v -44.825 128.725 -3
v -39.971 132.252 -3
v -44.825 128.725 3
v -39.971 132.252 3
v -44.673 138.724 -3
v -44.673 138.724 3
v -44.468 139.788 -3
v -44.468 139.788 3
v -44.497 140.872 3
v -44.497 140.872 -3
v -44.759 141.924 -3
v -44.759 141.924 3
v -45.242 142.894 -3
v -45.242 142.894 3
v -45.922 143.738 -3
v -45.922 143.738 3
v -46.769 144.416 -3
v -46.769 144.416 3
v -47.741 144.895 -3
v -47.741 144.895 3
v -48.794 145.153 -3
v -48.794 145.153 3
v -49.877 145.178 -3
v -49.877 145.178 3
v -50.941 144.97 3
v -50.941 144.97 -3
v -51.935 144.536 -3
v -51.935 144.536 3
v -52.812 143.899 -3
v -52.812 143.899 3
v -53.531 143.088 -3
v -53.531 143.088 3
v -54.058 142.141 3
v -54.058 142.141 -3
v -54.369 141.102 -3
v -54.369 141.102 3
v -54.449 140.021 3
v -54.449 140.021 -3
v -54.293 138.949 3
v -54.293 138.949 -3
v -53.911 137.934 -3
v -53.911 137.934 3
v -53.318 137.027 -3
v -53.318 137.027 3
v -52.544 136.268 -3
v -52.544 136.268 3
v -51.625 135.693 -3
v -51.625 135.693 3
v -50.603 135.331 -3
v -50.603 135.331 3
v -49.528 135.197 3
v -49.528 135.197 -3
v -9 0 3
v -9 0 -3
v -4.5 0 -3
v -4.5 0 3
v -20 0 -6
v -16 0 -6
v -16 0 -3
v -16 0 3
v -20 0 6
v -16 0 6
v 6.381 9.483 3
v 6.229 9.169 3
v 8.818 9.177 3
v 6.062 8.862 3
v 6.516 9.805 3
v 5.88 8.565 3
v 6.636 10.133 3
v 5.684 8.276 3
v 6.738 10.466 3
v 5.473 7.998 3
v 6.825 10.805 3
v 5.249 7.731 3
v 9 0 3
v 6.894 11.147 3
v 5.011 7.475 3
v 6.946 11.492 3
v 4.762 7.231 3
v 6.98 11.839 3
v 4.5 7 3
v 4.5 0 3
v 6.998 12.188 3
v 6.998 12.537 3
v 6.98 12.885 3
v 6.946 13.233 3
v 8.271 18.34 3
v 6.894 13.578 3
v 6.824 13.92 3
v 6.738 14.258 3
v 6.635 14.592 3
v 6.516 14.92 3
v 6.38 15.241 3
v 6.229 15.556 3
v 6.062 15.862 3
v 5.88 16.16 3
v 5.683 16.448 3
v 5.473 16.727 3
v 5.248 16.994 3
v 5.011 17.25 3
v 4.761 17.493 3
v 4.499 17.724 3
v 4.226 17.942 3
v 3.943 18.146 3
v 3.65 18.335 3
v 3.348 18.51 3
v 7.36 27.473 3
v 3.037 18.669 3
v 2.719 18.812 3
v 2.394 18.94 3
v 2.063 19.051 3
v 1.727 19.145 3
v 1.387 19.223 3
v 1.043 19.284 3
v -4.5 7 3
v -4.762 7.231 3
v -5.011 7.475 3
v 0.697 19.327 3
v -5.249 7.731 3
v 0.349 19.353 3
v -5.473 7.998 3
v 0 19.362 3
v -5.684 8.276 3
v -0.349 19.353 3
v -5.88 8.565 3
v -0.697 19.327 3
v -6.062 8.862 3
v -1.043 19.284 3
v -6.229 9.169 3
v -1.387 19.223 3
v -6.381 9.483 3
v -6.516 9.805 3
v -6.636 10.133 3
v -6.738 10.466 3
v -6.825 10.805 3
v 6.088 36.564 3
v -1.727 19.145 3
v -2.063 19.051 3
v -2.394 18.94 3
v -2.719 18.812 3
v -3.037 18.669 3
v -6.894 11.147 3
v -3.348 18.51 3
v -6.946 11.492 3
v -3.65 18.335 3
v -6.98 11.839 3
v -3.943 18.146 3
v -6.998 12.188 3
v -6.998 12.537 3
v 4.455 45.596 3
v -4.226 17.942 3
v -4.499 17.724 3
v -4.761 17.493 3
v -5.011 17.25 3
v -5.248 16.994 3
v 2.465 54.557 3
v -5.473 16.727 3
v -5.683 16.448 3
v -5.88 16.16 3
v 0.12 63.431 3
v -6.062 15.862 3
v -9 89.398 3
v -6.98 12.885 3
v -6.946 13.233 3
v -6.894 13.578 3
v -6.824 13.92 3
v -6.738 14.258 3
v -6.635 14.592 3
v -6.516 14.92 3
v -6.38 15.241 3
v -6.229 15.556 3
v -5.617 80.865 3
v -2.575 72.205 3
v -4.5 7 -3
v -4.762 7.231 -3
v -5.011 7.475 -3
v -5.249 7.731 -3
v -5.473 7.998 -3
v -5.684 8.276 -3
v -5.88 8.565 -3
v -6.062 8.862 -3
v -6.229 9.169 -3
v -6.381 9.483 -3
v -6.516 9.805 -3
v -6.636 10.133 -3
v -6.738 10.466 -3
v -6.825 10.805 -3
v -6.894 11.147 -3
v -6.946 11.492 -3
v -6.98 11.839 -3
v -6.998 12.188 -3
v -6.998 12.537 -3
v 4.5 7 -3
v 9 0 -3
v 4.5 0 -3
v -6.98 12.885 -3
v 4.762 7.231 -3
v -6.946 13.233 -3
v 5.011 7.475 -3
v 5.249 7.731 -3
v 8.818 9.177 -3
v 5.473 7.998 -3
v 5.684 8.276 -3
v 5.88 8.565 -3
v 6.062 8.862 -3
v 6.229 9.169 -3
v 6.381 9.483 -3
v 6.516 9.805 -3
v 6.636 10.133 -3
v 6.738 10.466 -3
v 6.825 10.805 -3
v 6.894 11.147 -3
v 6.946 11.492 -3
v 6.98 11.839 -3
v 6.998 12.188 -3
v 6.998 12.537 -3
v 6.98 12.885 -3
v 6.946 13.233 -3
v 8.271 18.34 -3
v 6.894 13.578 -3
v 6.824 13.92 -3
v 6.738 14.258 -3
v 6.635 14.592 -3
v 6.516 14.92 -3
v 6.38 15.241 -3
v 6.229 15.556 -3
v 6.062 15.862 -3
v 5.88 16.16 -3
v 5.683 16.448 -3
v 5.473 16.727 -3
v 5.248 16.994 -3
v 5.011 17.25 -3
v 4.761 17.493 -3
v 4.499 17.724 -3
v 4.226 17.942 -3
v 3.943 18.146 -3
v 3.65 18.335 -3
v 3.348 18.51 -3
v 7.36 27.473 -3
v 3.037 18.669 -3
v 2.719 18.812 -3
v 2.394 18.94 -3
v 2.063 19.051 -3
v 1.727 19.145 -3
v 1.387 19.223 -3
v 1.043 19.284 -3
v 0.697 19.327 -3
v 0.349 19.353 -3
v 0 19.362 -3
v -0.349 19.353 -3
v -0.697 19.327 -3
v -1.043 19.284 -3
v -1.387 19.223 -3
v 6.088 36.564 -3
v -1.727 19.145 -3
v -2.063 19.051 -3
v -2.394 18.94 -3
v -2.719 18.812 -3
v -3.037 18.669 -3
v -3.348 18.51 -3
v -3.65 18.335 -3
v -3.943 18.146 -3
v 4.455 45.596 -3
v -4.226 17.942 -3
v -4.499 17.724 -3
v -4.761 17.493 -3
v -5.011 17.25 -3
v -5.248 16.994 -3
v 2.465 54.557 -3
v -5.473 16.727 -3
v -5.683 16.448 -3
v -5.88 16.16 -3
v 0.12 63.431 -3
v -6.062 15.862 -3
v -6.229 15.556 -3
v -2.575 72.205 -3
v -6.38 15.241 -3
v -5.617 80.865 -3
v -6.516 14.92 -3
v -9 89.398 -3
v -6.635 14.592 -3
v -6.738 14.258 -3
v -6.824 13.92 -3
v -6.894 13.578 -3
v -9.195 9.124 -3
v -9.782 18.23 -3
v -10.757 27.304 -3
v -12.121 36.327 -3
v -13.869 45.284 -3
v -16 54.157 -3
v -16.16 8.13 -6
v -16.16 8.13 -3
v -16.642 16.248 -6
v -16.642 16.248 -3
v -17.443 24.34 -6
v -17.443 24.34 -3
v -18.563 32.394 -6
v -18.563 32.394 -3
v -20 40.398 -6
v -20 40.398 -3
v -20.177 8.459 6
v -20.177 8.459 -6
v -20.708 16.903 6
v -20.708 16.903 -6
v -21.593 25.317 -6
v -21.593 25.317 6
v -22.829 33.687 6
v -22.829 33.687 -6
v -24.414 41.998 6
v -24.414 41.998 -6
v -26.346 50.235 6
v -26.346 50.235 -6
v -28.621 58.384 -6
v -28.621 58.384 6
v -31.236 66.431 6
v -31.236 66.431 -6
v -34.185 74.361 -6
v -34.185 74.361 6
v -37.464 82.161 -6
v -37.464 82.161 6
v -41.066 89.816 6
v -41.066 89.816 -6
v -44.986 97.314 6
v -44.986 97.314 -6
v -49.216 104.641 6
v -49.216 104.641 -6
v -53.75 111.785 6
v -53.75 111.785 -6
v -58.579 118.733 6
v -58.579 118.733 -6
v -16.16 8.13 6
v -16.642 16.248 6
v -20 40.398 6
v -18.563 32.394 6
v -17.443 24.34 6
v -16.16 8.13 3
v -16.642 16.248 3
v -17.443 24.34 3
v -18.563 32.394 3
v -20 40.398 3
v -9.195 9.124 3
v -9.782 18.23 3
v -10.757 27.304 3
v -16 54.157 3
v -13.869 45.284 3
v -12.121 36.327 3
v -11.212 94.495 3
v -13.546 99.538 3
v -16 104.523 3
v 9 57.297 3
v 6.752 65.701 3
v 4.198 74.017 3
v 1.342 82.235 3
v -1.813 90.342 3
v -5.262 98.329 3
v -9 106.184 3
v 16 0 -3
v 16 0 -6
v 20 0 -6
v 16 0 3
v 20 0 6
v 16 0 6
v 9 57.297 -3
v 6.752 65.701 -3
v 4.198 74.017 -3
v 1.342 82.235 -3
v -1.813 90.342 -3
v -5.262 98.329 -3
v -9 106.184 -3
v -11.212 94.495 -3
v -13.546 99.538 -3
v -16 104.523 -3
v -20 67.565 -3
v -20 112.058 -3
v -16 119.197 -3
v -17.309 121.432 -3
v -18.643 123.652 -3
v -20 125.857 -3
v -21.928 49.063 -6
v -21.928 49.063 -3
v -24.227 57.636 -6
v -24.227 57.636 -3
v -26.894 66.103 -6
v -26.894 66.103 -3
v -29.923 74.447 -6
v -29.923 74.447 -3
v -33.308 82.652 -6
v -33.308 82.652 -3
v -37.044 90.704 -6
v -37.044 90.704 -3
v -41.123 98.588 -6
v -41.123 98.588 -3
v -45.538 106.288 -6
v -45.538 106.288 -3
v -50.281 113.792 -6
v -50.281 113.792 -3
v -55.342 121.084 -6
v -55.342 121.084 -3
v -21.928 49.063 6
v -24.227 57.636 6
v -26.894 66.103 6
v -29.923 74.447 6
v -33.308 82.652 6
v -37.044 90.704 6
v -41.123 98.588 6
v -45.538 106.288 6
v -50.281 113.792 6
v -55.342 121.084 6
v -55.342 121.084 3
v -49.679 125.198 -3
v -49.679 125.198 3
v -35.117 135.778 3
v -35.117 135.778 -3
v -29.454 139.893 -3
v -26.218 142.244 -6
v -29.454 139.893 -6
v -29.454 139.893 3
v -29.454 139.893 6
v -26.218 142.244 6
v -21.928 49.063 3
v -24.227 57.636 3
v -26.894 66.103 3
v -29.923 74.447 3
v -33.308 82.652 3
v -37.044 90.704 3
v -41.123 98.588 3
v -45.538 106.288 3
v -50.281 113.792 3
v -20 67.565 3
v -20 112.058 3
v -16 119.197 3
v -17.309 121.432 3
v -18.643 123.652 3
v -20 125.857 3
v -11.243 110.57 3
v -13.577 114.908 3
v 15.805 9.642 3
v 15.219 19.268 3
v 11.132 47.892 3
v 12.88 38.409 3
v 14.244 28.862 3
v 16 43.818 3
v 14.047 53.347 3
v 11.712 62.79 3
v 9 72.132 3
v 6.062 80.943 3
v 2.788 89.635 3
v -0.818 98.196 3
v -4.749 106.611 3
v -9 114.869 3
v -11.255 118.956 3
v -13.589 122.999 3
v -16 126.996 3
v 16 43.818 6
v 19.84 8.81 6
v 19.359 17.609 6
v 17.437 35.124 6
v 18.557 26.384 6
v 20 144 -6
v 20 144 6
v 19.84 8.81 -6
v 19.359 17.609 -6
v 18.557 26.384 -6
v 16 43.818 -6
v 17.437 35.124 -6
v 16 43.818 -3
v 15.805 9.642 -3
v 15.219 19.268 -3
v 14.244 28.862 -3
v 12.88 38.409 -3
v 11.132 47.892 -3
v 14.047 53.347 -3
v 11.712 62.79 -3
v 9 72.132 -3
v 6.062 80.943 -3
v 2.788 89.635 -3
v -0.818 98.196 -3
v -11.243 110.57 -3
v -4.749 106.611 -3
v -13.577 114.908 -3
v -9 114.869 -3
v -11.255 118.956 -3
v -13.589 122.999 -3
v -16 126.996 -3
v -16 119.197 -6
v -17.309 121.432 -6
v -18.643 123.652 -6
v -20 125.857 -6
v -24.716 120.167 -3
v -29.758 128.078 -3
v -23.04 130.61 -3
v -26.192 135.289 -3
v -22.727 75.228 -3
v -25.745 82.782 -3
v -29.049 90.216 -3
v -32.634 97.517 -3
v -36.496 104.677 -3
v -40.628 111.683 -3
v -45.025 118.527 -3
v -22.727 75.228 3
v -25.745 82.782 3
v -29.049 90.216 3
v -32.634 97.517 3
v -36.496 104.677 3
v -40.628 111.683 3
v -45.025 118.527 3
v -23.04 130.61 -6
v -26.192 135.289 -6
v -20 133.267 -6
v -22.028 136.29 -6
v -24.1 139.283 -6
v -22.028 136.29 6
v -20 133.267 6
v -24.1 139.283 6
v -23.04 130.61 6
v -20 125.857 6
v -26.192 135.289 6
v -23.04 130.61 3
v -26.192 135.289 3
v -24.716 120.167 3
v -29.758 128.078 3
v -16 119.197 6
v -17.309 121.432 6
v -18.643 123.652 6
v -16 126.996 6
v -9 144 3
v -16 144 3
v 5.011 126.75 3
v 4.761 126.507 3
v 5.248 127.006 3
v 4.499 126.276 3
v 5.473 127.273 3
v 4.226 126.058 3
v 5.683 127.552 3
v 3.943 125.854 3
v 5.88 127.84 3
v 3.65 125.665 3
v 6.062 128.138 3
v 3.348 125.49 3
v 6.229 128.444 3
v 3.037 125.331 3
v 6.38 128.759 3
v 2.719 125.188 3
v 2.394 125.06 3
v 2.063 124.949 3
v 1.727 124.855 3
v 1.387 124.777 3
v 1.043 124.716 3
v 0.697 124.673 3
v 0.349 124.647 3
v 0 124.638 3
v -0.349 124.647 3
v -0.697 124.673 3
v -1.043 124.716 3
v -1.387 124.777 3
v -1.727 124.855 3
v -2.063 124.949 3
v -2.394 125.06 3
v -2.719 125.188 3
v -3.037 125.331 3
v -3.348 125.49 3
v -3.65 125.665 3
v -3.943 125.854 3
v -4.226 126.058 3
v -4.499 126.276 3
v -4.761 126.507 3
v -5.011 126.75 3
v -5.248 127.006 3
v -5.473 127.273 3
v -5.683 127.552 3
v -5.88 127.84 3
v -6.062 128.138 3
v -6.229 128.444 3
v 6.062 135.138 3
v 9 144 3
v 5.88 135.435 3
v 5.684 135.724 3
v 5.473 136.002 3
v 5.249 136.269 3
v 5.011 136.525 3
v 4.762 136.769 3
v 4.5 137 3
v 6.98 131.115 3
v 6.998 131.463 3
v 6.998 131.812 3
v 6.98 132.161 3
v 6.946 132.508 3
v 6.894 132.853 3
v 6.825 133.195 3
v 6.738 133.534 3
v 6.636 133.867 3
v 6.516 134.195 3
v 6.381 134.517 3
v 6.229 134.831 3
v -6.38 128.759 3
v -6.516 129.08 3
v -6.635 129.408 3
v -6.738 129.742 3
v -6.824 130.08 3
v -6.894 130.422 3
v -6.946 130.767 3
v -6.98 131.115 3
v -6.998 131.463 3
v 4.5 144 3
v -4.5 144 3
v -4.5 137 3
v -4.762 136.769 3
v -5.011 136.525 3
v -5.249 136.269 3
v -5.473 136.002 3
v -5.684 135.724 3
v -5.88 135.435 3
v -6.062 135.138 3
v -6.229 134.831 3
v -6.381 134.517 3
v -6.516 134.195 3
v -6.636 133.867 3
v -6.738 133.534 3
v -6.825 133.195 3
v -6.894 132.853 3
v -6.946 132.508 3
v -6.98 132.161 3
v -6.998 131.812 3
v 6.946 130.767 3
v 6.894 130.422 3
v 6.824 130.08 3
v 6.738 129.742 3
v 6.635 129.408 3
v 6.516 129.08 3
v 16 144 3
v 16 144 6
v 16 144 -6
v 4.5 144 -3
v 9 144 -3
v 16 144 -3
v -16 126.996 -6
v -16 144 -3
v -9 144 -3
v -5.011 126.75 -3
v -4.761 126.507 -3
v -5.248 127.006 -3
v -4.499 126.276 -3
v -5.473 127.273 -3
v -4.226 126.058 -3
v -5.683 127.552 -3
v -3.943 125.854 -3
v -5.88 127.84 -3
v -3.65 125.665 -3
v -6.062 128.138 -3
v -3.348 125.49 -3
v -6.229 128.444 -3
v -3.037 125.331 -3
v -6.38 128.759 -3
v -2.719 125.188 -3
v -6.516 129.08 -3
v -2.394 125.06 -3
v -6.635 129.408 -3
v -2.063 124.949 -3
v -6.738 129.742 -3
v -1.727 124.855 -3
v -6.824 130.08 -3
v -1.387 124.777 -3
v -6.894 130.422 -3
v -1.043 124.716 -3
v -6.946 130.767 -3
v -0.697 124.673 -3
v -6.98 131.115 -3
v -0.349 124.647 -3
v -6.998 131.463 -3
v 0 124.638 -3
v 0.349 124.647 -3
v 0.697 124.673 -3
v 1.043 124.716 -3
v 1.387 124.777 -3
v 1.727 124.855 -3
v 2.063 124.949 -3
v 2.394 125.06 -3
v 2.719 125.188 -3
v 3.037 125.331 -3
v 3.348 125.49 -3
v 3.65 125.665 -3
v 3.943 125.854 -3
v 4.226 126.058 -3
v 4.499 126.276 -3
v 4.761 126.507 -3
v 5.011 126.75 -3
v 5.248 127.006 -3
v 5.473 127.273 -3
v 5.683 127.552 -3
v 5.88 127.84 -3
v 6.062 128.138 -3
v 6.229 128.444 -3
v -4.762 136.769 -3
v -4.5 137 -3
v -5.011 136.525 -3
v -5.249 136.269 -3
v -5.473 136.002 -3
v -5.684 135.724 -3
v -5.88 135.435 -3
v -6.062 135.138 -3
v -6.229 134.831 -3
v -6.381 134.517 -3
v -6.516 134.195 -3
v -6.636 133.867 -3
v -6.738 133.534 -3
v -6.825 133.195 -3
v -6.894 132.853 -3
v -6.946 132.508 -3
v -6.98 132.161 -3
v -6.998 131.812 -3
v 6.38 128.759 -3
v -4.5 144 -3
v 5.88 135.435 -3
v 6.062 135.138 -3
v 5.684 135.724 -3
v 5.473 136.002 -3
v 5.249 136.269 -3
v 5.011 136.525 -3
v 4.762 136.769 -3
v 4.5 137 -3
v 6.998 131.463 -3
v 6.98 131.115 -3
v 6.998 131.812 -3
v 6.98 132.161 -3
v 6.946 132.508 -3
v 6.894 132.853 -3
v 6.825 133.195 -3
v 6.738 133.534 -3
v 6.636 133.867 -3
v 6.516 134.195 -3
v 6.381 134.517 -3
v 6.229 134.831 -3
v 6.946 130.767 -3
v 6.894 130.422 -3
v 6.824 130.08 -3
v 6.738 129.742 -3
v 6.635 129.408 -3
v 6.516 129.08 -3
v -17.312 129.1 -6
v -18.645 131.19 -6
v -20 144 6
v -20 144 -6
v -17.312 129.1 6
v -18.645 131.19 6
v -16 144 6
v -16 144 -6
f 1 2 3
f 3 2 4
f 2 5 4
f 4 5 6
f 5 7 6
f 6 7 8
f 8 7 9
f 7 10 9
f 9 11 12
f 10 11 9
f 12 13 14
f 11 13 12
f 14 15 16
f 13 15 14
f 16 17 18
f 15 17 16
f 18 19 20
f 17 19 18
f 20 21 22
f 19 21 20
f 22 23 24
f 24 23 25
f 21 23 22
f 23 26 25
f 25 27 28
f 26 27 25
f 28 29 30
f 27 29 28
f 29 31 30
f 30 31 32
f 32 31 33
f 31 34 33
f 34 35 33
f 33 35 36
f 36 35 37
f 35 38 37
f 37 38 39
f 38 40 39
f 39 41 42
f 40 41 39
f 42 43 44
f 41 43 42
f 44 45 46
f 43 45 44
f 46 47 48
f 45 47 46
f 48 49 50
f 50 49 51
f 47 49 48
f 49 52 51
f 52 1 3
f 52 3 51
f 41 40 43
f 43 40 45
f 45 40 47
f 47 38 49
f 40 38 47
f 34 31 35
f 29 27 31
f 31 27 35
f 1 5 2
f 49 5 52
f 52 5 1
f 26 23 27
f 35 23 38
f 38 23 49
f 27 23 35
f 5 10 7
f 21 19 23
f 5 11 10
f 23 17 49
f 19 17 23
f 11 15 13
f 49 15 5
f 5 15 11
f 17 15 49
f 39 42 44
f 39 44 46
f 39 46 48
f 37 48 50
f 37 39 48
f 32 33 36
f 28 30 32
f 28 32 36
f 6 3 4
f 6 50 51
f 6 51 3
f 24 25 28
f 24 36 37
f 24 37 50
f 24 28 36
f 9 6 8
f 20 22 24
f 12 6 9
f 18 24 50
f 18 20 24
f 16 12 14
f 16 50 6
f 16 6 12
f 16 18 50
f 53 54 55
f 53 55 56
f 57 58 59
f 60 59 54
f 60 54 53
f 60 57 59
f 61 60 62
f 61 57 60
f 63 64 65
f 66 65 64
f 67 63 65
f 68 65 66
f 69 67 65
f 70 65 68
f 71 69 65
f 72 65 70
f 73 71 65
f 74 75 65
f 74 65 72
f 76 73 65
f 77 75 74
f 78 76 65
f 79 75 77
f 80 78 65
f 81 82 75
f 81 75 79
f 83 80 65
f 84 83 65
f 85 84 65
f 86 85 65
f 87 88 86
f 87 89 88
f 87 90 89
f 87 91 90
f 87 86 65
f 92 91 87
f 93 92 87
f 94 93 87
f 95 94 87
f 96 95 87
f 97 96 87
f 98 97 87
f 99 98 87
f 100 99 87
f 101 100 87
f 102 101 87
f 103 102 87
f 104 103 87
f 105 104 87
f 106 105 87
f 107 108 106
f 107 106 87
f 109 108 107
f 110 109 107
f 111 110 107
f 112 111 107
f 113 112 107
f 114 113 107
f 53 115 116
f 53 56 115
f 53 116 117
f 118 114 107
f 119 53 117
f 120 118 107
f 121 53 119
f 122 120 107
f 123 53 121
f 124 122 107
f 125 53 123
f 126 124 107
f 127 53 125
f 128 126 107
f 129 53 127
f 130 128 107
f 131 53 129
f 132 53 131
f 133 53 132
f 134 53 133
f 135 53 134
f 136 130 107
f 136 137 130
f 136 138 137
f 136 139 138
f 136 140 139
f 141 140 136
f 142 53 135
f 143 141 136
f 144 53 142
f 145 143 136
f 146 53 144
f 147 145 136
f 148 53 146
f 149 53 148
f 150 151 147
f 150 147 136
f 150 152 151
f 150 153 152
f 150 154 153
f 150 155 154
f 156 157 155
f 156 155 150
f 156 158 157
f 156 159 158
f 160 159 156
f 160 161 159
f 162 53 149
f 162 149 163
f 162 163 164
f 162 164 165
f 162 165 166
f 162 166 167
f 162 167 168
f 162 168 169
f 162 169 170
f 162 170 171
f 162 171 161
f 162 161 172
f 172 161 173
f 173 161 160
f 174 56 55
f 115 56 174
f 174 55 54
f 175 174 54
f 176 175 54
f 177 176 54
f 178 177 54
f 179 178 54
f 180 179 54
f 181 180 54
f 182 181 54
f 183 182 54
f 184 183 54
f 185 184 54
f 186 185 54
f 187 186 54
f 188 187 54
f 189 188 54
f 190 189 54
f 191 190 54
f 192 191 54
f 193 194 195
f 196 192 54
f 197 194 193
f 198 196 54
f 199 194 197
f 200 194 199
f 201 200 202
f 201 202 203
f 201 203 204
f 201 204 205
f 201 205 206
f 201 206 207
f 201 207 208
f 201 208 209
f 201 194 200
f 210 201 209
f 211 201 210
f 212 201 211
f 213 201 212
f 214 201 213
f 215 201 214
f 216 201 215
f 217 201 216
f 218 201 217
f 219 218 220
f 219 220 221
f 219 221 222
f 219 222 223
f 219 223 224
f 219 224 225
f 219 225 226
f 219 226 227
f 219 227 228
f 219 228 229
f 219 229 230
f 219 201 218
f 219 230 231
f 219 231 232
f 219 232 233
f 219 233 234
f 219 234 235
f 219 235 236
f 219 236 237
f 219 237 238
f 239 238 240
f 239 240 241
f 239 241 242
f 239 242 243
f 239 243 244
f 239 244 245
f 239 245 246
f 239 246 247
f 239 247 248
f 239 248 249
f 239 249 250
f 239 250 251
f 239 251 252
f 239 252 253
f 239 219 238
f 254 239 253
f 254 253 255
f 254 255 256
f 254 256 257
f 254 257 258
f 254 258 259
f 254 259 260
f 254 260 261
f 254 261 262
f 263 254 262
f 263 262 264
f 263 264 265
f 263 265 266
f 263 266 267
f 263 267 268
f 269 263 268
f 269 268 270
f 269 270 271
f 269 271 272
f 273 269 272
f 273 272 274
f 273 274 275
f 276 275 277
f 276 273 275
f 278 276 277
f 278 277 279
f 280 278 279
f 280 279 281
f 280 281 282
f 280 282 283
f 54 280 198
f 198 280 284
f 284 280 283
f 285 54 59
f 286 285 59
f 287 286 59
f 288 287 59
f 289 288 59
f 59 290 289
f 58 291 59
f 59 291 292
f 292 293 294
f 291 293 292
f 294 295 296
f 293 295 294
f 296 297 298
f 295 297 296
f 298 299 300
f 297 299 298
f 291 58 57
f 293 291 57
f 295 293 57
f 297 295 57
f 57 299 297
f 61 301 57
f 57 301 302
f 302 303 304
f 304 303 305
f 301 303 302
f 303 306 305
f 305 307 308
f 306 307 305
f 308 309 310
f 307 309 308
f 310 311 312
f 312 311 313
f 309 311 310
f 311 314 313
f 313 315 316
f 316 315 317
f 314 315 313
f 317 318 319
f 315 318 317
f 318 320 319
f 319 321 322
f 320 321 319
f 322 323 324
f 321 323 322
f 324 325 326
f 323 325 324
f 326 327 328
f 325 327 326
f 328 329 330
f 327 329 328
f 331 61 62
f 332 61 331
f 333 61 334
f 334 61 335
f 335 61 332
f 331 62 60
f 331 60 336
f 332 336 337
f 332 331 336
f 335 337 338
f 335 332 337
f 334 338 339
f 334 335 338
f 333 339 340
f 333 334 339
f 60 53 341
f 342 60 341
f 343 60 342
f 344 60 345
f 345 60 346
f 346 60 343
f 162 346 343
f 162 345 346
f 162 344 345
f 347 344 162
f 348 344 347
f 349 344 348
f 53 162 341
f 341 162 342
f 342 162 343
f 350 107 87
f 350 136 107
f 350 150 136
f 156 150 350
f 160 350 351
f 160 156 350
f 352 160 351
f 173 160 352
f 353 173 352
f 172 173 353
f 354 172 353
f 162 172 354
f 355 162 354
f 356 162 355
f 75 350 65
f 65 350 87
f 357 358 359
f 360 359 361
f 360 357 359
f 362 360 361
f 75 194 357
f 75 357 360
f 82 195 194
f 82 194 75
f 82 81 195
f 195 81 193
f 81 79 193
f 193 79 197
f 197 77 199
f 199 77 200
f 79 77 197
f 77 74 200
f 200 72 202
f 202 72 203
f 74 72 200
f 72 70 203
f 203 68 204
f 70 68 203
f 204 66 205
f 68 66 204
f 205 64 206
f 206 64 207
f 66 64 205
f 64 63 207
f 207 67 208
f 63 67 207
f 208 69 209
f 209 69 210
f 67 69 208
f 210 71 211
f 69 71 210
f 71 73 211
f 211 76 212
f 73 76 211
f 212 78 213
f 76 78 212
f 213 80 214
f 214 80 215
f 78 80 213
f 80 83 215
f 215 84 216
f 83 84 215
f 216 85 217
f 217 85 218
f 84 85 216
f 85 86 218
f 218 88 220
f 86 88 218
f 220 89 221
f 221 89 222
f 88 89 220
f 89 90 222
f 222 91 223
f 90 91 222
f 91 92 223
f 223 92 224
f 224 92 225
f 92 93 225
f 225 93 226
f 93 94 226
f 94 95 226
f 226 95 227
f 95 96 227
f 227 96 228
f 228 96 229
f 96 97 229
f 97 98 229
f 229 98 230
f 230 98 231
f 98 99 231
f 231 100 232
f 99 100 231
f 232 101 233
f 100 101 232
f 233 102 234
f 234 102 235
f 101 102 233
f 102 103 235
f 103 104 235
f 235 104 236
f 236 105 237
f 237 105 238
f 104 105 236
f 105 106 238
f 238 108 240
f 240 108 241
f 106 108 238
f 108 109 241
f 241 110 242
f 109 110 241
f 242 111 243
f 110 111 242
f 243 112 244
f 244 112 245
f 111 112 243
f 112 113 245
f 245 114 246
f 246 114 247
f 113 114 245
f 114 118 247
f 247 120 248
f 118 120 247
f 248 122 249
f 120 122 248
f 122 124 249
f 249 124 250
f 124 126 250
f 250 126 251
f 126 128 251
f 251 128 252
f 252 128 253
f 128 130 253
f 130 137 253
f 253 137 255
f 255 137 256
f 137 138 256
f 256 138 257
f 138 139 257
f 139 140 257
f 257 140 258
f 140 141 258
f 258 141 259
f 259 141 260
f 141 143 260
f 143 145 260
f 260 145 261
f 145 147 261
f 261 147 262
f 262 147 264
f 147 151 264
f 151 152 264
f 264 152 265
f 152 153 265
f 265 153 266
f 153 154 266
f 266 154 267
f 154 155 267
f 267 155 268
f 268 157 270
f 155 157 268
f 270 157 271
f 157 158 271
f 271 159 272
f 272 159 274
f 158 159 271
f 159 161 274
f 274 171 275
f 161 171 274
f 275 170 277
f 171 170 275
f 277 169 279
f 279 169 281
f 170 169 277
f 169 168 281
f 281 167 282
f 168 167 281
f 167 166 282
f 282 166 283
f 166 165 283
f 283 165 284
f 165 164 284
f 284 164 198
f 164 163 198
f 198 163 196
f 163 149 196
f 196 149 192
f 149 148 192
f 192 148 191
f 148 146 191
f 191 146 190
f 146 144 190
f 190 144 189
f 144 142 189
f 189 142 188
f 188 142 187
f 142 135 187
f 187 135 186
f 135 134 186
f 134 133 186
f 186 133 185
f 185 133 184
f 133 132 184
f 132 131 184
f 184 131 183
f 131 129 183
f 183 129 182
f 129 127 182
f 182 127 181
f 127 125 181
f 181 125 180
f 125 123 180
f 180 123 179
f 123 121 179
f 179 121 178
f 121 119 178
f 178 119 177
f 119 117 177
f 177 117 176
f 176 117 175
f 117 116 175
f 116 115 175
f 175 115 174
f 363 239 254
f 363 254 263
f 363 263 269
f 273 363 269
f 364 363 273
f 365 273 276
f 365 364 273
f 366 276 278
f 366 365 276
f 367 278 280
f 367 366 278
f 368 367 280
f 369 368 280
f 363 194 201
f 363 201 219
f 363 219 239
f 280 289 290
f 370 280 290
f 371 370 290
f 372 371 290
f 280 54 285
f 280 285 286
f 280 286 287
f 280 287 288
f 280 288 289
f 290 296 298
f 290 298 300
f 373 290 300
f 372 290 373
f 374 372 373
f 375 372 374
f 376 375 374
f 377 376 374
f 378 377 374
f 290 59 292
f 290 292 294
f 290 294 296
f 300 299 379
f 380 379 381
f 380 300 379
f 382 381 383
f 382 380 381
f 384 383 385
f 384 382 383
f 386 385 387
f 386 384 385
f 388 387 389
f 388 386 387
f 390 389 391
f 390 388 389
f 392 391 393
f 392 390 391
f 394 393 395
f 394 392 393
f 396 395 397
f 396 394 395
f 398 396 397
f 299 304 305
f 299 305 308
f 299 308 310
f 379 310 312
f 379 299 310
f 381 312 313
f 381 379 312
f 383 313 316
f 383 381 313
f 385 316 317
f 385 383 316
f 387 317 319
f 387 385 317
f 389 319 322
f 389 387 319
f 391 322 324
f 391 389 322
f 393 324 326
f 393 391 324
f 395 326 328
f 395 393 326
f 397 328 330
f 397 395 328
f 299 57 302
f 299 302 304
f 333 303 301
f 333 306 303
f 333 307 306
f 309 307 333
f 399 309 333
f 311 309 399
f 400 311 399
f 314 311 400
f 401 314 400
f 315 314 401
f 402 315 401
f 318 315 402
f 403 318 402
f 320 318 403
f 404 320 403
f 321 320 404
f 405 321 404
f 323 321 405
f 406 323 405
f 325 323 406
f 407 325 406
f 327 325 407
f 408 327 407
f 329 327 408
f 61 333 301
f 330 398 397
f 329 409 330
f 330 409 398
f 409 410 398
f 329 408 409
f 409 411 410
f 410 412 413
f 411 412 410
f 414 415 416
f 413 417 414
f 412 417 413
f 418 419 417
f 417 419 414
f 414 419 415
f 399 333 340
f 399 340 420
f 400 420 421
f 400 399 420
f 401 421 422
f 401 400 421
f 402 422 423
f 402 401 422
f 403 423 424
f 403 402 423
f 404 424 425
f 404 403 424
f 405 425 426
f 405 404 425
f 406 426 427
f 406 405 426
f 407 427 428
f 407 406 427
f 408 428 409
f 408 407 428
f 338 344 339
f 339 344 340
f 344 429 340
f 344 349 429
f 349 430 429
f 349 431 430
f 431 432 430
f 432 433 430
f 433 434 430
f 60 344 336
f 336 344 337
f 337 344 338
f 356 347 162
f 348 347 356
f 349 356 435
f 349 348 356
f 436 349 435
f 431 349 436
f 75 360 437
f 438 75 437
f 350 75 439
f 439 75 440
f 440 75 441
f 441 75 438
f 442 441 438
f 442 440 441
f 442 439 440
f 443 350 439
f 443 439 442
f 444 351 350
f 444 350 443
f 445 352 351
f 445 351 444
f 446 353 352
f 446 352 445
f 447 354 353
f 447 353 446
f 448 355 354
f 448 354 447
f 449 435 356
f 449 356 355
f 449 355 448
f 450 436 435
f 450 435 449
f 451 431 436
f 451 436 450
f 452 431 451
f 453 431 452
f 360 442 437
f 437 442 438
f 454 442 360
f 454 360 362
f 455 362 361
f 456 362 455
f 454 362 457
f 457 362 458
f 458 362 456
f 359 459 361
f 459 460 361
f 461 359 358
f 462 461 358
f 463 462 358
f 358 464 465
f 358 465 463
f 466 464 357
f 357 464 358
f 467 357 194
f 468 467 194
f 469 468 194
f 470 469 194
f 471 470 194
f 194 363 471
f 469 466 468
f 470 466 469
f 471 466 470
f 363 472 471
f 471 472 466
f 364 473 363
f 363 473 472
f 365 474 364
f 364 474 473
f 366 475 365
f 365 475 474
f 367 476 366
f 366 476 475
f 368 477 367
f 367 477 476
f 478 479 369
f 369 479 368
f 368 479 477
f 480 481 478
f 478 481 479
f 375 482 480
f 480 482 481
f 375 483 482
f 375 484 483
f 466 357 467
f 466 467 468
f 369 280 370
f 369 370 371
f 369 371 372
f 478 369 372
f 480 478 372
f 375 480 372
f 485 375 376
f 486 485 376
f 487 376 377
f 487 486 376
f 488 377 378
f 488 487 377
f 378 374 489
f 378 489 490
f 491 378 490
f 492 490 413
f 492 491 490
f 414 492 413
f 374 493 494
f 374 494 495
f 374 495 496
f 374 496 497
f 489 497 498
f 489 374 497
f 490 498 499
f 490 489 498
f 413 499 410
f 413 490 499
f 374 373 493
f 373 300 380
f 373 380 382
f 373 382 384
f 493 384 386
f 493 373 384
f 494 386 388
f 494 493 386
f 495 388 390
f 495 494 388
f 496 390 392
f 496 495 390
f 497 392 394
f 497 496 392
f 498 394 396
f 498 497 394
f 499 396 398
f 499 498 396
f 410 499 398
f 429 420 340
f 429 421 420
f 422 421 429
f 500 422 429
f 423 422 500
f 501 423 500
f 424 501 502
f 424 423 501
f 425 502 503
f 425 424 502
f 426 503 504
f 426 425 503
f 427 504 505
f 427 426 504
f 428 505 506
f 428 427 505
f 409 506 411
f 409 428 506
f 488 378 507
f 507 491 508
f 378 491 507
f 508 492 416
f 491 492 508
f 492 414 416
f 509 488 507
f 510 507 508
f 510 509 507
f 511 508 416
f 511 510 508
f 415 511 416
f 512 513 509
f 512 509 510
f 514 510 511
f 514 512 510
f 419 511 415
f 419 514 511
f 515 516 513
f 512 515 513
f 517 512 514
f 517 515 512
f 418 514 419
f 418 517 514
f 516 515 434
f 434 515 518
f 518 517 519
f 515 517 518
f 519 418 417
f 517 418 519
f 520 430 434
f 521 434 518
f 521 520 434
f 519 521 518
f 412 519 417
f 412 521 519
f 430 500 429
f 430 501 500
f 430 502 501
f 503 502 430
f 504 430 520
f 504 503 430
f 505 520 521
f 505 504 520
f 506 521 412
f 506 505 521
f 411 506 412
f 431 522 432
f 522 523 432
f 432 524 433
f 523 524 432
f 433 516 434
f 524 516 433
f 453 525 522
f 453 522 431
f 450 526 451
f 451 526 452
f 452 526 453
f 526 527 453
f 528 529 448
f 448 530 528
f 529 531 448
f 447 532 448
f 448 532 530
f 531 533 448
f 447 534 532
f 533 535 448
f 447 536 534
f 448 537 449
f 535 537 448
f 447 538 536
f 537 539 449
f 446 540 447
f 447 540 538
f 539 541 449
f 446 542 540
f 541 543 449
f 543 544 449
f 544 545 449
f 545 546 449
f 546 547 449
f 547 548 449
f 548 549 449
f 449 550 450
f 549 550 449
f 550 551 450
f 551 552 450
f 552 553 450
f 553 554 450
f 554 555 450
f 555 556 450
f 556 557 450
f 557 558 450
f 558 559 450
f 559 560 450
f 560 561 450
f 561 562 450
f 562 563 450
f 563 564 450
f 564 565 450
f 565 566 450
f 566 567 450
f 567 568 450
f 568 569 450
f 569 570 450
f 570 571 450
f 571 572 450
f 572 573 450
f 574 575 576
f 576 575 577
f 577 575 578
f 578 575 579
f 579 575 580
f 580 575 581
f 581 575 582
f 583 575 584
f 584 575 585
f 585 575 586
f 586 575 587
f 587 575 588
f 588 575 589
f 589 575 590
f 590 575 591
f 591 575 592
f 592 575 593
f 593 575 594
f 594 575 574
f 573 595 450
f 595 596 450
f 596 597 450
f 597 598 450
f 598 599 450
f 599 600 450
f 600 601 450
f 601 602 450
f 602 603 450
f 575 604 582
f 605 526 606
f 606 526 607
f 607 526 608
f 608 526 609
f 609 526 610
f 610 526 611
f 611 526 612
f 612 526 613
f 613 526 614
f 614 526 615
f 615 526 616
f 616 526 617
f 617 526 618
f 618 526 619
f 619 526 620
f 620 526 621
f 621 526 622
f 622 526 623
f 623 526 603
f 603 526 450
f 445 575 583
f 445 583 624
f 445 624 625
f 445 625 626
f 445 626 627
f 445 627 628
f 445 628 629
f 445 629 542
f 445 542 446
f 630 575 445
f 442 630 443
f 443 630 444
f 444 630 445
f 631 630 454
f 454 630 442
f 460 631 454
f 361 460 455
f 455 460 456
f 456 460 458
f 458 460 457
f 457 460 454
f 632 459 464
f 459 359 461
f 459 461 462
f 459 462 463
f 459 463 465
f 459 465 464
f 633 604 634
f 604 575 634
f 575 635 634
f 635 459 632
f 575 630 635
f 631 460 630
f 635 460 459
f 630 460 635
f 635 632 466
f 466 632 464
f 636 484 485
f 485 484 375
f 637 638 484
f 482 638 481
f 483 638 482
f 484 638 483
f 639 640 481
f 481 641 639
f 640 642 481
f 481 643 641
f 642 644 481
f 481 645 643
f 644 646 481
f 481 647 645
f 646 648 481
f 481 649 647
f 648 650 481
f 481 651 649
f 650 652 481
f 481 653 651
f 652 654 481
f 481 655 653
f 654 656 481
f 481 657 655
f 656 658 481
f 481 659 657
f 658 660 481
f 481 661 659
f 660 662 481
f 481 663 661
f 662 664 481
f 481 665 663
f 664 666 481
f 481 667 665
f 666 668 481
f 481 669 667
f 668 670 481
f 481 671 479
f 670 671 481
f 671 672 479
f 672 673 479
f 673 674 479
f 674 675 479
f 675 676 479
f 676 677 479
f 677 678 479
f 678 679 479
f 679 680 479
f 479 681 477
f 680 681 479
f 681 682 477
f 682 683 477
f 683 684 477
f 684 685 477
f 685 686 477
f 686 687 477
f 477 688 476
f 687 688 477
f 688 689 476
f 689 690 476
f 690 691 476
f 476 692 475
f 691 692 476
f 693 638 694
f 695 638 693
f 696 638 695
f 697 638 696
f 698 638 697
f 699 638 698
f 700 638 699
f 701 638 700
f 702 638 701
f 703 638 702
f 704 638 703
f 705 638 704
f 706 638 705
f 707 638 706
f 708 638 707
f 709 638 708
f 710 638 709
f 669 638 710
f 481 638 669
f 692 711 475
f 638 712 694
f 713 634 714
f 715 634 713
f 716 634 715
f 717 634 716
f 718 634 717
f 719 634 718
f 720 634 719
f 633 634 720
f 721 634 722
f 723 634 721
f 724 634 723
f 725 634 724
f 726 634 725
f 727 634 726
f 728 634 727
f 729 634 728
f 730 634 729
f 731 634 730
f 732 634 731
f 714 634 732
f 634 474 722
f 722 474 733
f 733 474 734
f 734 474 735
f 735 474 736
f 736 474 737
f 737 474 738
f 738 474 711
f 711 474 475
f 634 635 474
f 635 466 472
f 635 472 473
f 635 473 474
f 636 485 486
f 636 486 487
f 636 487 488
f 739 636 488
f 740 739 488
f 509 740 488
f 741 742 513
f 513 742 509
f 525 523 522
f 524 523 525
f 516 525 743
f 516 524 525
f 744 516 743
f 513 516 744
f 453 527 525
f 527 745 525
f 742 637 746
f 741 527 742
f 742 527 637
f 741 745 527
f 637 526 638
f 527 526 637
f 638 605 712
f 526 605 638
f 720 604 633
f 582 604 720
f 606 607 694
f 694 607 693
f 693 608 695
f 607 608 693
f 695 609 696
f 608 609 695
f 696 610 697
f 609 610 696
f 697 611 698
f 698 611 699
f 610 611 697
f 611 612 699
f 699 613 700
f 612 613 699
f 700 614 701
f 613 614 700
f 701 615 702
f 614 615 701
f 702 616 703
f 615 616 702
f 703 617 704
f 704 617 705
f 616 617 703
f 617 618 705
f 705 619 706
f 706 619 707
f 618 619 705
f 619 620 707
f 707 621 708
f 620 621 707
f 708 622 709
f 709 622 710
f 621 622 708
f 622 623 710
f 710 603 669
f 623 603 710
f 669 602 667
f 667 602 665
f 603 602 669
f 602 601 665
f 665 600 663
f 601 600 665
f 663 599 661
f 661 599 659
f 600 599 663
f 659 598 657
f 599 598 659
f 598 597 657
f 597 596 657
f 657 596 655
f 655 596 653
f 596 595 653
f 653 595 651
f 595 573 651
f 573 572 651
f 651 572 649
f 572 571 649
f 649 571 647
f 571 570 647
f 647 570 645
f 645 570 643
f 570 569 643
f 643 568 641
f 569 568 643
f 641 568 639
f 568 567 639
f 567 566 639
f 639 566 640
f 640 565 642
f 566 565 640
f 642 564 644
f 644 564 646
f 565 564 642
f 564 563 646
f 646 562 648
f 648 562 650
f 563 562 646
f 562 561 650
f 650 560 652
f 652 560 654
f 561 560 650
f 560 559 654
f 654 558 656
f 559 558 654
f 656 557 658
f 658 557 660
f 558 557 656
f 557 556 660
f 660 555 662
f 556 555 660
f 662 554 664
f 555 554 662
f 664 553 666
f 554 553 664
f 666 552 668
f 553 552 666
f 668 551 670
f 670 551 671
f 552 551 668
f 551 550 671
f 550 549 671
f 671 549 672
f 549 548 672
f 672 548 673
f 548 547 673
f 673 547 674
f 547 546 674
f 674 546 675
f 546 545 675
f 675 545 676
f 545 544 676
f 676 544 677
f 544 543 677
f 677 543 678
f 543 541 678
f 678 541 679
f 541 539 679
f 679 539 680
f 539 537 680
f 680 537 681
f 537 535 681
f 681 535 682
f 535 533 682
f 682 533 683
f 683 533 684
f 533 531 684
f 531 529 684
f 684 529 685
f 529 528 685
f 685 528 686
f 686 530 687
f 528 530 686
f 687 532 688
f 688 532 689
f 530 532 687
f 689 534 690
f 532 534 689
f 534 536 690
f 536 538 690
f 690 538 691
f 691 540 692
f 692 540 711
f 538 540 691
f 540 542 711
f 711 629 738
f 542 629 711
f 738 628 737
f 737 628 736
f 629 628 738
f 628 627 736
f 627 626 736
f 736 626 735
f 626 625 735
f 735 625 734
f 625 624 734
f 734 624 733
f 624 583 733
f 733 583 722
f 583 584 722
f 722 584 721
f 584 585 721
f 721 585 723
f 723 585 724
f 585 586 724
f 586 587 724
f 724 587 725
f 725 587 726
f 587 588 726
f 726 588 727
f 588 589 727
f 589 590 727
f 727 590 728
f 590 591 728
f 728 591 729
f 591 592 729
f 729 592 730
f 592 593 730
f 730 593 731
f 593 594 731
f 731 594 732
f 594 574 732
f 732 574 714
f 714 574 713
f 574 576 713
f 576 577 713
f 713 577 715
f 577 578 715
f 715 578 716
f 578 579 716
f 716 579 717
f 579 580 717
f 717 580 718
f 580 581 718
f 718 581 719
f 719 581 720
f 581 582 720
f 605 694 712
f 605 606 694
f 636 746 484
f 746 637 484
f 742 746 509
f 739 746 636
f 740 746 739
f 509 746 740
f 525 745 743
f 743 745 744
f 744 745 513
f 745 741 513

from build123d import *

# Parameters (mm, degrees)
SKETCH013_W          = 32
SKETCH013_H          = 3
POCKET_DEPTH         = 6.001
POCKET_DEPTH_BACK    = -6.001
POCKET001_DEPTH      = 6.001
POCKET001_DEPTH_BACK = -6.001
PAD002_DEPTH         = 3


with BuildPart() as body:
    # AdditivePipe: sweep along a path in Sketch002
    with BuildLine(Plane.XY) as additivepipe_path:
        ThreePointArc((0, 0), (-10.865453, 68.601773), (-42.398227, 130.488326))
    # Sketch → AdditivePipe (sweep)
    with BuildSketch(Plane.XZ):
        Polygon((-20, 6), (-20, -6), (-16, -6), (-16, -3), (-9, -3), (9, -3), (16, -3), (16, -6), (20, -6), (20, 6), (16, 6), (16, 3), (9, 3), (-9, 3), (-16, 3), (-16, 6), align=None)
    sweep(path=additivepipe_path.line)

    # AdditivePipe001: sweep along a path in Sketch001
    with BuildLine(Plane.XY) as additivepipe001_path:
        Line((0, 0), (0, 144))
    # Sketch → AdditivePipe001 (sweep)
    with BuildSketch(Plane.XZ):
        Polygon((-20, 6), (-20, -6), (-16, -6), (-16, -3), (-9, -3), (9, -3), (16, -3), (16, -6), (20, -6), (20, 6), (16, 6), (16, 3), (9, 3), (-9, 3), (-16, 3), (-16, 6), align=None)
    sweep(path=additivepipe001_path.line)

    # SubtractivePipe: sweep along a path in Sketch002
    with BuildLine(Plane.XY) as subtractivepipe_path:
        ThreePointArc((0, 0), (-10.865453, 68.601773), (-42.398227, 130.488326))
    # Sketch013 (on Face1 of AdditivePipe001) → SubtractivePipe (sweep, cut)
    with BuildSketch(Plane.XZ):
        with Locations((0, 4.5)):
            Rectangle(SKETCH013_W, SKETCH013_H)
    subtractivepipe = sweep(path=subtractivepipe_path.line, mode=Mode.SUBTRACT)

    # SubtractivePipe001: sweep along a path in Sketch001
    with BuildLine(Plane.XY) as subtractivepipe001_path:
        Line((0, 0), (0, 144))
    # Sketch013 (on Face1 of AdditivePipe001) → SubtractivePipe001 (sweep, cut)
    with BuildSketch(Plane.XZ):
        with Locations((0, 4.5)):
            Rectangle(SKETCH013_W, SKETCH013_H)
    subtractivepipe001 = sweep(path=subtractivepipe001_path.line, mode=Mode.SUBTRACT)

    # Mirrored: SubtractivePipe across XY
    add(subtractivepipe.mirror(Plane.XY), mode=Mode.SUBTRACT)

    # Mirrored001: SubtractivePipe001 across XY
    add(subtractivepipe001.mirror(Plane.XY), mode=Mode.SUBTRACT)

    # Sketch014 → Pocket (cut, two sides)
    with BuildSketch(Plane.XY) as pocket_sk:
        with BuildLine():
            Line((-4.5, 0), (4.5, 0))
            Line((4.5, 0), (4.5, 7))
            ThreePointArc((4.5, 7), (0, 19.361903), (-4.5, 7))
            Line((-4.5, 0), (-4.5, 7))
        make_face()
    extrude(amount=-POCKET_DEPTH, mode=Mode.SUBTRACT)
    extrude(pocket_sk.sketch, amount=-POCKET_DEPTH_BACK, mode=Mode.SUBTRACT)

    # Sketch016 → Pocket001 (cut, two sides)
    with BuildSketch(Plane.XY) as pocket001_sk:
        with BuildLine():
            Line((-4.5, 144), (4.5, 144))
            Line((4.5, 144), (4.5, 137))
            ThreePointArc((-4.5, 137), (0, 124.638097), (4.5, 137))
            Line((-4.5, 144), (-4.5, 137))
        make_face()
    extrude(amount=-POCKET001_DEPTH, mode=Mode.SUBTRACT)
    extrude(pocket001_sk.sketch, amount=-POCKET001_DEPTH_BACK, mode=Mode.SUBTRACT)


with BuildPart() as body003:
    # Sketch012 → Pad002 (new body, symmetric)
    with BuildSketch(Plane.XY):
        with BuildLine():
            Line((-44.825278, 128.72497), (-39.971176, 132.251682))
            Line((-39.971176, 132.251682), (-44.673458, 138.723818))
            ThreePointArc((-44.673458, 138.723818), (-52.390577, 144.241615), (-49.52756, 135.197106))
            Line((-44.825278, 128.72497), (-49.52756, 135.197106))
        make_face()
    extrude(amount=PAD002_DEPTH, both=True)


solid = Compound([body.part, body003.part])
